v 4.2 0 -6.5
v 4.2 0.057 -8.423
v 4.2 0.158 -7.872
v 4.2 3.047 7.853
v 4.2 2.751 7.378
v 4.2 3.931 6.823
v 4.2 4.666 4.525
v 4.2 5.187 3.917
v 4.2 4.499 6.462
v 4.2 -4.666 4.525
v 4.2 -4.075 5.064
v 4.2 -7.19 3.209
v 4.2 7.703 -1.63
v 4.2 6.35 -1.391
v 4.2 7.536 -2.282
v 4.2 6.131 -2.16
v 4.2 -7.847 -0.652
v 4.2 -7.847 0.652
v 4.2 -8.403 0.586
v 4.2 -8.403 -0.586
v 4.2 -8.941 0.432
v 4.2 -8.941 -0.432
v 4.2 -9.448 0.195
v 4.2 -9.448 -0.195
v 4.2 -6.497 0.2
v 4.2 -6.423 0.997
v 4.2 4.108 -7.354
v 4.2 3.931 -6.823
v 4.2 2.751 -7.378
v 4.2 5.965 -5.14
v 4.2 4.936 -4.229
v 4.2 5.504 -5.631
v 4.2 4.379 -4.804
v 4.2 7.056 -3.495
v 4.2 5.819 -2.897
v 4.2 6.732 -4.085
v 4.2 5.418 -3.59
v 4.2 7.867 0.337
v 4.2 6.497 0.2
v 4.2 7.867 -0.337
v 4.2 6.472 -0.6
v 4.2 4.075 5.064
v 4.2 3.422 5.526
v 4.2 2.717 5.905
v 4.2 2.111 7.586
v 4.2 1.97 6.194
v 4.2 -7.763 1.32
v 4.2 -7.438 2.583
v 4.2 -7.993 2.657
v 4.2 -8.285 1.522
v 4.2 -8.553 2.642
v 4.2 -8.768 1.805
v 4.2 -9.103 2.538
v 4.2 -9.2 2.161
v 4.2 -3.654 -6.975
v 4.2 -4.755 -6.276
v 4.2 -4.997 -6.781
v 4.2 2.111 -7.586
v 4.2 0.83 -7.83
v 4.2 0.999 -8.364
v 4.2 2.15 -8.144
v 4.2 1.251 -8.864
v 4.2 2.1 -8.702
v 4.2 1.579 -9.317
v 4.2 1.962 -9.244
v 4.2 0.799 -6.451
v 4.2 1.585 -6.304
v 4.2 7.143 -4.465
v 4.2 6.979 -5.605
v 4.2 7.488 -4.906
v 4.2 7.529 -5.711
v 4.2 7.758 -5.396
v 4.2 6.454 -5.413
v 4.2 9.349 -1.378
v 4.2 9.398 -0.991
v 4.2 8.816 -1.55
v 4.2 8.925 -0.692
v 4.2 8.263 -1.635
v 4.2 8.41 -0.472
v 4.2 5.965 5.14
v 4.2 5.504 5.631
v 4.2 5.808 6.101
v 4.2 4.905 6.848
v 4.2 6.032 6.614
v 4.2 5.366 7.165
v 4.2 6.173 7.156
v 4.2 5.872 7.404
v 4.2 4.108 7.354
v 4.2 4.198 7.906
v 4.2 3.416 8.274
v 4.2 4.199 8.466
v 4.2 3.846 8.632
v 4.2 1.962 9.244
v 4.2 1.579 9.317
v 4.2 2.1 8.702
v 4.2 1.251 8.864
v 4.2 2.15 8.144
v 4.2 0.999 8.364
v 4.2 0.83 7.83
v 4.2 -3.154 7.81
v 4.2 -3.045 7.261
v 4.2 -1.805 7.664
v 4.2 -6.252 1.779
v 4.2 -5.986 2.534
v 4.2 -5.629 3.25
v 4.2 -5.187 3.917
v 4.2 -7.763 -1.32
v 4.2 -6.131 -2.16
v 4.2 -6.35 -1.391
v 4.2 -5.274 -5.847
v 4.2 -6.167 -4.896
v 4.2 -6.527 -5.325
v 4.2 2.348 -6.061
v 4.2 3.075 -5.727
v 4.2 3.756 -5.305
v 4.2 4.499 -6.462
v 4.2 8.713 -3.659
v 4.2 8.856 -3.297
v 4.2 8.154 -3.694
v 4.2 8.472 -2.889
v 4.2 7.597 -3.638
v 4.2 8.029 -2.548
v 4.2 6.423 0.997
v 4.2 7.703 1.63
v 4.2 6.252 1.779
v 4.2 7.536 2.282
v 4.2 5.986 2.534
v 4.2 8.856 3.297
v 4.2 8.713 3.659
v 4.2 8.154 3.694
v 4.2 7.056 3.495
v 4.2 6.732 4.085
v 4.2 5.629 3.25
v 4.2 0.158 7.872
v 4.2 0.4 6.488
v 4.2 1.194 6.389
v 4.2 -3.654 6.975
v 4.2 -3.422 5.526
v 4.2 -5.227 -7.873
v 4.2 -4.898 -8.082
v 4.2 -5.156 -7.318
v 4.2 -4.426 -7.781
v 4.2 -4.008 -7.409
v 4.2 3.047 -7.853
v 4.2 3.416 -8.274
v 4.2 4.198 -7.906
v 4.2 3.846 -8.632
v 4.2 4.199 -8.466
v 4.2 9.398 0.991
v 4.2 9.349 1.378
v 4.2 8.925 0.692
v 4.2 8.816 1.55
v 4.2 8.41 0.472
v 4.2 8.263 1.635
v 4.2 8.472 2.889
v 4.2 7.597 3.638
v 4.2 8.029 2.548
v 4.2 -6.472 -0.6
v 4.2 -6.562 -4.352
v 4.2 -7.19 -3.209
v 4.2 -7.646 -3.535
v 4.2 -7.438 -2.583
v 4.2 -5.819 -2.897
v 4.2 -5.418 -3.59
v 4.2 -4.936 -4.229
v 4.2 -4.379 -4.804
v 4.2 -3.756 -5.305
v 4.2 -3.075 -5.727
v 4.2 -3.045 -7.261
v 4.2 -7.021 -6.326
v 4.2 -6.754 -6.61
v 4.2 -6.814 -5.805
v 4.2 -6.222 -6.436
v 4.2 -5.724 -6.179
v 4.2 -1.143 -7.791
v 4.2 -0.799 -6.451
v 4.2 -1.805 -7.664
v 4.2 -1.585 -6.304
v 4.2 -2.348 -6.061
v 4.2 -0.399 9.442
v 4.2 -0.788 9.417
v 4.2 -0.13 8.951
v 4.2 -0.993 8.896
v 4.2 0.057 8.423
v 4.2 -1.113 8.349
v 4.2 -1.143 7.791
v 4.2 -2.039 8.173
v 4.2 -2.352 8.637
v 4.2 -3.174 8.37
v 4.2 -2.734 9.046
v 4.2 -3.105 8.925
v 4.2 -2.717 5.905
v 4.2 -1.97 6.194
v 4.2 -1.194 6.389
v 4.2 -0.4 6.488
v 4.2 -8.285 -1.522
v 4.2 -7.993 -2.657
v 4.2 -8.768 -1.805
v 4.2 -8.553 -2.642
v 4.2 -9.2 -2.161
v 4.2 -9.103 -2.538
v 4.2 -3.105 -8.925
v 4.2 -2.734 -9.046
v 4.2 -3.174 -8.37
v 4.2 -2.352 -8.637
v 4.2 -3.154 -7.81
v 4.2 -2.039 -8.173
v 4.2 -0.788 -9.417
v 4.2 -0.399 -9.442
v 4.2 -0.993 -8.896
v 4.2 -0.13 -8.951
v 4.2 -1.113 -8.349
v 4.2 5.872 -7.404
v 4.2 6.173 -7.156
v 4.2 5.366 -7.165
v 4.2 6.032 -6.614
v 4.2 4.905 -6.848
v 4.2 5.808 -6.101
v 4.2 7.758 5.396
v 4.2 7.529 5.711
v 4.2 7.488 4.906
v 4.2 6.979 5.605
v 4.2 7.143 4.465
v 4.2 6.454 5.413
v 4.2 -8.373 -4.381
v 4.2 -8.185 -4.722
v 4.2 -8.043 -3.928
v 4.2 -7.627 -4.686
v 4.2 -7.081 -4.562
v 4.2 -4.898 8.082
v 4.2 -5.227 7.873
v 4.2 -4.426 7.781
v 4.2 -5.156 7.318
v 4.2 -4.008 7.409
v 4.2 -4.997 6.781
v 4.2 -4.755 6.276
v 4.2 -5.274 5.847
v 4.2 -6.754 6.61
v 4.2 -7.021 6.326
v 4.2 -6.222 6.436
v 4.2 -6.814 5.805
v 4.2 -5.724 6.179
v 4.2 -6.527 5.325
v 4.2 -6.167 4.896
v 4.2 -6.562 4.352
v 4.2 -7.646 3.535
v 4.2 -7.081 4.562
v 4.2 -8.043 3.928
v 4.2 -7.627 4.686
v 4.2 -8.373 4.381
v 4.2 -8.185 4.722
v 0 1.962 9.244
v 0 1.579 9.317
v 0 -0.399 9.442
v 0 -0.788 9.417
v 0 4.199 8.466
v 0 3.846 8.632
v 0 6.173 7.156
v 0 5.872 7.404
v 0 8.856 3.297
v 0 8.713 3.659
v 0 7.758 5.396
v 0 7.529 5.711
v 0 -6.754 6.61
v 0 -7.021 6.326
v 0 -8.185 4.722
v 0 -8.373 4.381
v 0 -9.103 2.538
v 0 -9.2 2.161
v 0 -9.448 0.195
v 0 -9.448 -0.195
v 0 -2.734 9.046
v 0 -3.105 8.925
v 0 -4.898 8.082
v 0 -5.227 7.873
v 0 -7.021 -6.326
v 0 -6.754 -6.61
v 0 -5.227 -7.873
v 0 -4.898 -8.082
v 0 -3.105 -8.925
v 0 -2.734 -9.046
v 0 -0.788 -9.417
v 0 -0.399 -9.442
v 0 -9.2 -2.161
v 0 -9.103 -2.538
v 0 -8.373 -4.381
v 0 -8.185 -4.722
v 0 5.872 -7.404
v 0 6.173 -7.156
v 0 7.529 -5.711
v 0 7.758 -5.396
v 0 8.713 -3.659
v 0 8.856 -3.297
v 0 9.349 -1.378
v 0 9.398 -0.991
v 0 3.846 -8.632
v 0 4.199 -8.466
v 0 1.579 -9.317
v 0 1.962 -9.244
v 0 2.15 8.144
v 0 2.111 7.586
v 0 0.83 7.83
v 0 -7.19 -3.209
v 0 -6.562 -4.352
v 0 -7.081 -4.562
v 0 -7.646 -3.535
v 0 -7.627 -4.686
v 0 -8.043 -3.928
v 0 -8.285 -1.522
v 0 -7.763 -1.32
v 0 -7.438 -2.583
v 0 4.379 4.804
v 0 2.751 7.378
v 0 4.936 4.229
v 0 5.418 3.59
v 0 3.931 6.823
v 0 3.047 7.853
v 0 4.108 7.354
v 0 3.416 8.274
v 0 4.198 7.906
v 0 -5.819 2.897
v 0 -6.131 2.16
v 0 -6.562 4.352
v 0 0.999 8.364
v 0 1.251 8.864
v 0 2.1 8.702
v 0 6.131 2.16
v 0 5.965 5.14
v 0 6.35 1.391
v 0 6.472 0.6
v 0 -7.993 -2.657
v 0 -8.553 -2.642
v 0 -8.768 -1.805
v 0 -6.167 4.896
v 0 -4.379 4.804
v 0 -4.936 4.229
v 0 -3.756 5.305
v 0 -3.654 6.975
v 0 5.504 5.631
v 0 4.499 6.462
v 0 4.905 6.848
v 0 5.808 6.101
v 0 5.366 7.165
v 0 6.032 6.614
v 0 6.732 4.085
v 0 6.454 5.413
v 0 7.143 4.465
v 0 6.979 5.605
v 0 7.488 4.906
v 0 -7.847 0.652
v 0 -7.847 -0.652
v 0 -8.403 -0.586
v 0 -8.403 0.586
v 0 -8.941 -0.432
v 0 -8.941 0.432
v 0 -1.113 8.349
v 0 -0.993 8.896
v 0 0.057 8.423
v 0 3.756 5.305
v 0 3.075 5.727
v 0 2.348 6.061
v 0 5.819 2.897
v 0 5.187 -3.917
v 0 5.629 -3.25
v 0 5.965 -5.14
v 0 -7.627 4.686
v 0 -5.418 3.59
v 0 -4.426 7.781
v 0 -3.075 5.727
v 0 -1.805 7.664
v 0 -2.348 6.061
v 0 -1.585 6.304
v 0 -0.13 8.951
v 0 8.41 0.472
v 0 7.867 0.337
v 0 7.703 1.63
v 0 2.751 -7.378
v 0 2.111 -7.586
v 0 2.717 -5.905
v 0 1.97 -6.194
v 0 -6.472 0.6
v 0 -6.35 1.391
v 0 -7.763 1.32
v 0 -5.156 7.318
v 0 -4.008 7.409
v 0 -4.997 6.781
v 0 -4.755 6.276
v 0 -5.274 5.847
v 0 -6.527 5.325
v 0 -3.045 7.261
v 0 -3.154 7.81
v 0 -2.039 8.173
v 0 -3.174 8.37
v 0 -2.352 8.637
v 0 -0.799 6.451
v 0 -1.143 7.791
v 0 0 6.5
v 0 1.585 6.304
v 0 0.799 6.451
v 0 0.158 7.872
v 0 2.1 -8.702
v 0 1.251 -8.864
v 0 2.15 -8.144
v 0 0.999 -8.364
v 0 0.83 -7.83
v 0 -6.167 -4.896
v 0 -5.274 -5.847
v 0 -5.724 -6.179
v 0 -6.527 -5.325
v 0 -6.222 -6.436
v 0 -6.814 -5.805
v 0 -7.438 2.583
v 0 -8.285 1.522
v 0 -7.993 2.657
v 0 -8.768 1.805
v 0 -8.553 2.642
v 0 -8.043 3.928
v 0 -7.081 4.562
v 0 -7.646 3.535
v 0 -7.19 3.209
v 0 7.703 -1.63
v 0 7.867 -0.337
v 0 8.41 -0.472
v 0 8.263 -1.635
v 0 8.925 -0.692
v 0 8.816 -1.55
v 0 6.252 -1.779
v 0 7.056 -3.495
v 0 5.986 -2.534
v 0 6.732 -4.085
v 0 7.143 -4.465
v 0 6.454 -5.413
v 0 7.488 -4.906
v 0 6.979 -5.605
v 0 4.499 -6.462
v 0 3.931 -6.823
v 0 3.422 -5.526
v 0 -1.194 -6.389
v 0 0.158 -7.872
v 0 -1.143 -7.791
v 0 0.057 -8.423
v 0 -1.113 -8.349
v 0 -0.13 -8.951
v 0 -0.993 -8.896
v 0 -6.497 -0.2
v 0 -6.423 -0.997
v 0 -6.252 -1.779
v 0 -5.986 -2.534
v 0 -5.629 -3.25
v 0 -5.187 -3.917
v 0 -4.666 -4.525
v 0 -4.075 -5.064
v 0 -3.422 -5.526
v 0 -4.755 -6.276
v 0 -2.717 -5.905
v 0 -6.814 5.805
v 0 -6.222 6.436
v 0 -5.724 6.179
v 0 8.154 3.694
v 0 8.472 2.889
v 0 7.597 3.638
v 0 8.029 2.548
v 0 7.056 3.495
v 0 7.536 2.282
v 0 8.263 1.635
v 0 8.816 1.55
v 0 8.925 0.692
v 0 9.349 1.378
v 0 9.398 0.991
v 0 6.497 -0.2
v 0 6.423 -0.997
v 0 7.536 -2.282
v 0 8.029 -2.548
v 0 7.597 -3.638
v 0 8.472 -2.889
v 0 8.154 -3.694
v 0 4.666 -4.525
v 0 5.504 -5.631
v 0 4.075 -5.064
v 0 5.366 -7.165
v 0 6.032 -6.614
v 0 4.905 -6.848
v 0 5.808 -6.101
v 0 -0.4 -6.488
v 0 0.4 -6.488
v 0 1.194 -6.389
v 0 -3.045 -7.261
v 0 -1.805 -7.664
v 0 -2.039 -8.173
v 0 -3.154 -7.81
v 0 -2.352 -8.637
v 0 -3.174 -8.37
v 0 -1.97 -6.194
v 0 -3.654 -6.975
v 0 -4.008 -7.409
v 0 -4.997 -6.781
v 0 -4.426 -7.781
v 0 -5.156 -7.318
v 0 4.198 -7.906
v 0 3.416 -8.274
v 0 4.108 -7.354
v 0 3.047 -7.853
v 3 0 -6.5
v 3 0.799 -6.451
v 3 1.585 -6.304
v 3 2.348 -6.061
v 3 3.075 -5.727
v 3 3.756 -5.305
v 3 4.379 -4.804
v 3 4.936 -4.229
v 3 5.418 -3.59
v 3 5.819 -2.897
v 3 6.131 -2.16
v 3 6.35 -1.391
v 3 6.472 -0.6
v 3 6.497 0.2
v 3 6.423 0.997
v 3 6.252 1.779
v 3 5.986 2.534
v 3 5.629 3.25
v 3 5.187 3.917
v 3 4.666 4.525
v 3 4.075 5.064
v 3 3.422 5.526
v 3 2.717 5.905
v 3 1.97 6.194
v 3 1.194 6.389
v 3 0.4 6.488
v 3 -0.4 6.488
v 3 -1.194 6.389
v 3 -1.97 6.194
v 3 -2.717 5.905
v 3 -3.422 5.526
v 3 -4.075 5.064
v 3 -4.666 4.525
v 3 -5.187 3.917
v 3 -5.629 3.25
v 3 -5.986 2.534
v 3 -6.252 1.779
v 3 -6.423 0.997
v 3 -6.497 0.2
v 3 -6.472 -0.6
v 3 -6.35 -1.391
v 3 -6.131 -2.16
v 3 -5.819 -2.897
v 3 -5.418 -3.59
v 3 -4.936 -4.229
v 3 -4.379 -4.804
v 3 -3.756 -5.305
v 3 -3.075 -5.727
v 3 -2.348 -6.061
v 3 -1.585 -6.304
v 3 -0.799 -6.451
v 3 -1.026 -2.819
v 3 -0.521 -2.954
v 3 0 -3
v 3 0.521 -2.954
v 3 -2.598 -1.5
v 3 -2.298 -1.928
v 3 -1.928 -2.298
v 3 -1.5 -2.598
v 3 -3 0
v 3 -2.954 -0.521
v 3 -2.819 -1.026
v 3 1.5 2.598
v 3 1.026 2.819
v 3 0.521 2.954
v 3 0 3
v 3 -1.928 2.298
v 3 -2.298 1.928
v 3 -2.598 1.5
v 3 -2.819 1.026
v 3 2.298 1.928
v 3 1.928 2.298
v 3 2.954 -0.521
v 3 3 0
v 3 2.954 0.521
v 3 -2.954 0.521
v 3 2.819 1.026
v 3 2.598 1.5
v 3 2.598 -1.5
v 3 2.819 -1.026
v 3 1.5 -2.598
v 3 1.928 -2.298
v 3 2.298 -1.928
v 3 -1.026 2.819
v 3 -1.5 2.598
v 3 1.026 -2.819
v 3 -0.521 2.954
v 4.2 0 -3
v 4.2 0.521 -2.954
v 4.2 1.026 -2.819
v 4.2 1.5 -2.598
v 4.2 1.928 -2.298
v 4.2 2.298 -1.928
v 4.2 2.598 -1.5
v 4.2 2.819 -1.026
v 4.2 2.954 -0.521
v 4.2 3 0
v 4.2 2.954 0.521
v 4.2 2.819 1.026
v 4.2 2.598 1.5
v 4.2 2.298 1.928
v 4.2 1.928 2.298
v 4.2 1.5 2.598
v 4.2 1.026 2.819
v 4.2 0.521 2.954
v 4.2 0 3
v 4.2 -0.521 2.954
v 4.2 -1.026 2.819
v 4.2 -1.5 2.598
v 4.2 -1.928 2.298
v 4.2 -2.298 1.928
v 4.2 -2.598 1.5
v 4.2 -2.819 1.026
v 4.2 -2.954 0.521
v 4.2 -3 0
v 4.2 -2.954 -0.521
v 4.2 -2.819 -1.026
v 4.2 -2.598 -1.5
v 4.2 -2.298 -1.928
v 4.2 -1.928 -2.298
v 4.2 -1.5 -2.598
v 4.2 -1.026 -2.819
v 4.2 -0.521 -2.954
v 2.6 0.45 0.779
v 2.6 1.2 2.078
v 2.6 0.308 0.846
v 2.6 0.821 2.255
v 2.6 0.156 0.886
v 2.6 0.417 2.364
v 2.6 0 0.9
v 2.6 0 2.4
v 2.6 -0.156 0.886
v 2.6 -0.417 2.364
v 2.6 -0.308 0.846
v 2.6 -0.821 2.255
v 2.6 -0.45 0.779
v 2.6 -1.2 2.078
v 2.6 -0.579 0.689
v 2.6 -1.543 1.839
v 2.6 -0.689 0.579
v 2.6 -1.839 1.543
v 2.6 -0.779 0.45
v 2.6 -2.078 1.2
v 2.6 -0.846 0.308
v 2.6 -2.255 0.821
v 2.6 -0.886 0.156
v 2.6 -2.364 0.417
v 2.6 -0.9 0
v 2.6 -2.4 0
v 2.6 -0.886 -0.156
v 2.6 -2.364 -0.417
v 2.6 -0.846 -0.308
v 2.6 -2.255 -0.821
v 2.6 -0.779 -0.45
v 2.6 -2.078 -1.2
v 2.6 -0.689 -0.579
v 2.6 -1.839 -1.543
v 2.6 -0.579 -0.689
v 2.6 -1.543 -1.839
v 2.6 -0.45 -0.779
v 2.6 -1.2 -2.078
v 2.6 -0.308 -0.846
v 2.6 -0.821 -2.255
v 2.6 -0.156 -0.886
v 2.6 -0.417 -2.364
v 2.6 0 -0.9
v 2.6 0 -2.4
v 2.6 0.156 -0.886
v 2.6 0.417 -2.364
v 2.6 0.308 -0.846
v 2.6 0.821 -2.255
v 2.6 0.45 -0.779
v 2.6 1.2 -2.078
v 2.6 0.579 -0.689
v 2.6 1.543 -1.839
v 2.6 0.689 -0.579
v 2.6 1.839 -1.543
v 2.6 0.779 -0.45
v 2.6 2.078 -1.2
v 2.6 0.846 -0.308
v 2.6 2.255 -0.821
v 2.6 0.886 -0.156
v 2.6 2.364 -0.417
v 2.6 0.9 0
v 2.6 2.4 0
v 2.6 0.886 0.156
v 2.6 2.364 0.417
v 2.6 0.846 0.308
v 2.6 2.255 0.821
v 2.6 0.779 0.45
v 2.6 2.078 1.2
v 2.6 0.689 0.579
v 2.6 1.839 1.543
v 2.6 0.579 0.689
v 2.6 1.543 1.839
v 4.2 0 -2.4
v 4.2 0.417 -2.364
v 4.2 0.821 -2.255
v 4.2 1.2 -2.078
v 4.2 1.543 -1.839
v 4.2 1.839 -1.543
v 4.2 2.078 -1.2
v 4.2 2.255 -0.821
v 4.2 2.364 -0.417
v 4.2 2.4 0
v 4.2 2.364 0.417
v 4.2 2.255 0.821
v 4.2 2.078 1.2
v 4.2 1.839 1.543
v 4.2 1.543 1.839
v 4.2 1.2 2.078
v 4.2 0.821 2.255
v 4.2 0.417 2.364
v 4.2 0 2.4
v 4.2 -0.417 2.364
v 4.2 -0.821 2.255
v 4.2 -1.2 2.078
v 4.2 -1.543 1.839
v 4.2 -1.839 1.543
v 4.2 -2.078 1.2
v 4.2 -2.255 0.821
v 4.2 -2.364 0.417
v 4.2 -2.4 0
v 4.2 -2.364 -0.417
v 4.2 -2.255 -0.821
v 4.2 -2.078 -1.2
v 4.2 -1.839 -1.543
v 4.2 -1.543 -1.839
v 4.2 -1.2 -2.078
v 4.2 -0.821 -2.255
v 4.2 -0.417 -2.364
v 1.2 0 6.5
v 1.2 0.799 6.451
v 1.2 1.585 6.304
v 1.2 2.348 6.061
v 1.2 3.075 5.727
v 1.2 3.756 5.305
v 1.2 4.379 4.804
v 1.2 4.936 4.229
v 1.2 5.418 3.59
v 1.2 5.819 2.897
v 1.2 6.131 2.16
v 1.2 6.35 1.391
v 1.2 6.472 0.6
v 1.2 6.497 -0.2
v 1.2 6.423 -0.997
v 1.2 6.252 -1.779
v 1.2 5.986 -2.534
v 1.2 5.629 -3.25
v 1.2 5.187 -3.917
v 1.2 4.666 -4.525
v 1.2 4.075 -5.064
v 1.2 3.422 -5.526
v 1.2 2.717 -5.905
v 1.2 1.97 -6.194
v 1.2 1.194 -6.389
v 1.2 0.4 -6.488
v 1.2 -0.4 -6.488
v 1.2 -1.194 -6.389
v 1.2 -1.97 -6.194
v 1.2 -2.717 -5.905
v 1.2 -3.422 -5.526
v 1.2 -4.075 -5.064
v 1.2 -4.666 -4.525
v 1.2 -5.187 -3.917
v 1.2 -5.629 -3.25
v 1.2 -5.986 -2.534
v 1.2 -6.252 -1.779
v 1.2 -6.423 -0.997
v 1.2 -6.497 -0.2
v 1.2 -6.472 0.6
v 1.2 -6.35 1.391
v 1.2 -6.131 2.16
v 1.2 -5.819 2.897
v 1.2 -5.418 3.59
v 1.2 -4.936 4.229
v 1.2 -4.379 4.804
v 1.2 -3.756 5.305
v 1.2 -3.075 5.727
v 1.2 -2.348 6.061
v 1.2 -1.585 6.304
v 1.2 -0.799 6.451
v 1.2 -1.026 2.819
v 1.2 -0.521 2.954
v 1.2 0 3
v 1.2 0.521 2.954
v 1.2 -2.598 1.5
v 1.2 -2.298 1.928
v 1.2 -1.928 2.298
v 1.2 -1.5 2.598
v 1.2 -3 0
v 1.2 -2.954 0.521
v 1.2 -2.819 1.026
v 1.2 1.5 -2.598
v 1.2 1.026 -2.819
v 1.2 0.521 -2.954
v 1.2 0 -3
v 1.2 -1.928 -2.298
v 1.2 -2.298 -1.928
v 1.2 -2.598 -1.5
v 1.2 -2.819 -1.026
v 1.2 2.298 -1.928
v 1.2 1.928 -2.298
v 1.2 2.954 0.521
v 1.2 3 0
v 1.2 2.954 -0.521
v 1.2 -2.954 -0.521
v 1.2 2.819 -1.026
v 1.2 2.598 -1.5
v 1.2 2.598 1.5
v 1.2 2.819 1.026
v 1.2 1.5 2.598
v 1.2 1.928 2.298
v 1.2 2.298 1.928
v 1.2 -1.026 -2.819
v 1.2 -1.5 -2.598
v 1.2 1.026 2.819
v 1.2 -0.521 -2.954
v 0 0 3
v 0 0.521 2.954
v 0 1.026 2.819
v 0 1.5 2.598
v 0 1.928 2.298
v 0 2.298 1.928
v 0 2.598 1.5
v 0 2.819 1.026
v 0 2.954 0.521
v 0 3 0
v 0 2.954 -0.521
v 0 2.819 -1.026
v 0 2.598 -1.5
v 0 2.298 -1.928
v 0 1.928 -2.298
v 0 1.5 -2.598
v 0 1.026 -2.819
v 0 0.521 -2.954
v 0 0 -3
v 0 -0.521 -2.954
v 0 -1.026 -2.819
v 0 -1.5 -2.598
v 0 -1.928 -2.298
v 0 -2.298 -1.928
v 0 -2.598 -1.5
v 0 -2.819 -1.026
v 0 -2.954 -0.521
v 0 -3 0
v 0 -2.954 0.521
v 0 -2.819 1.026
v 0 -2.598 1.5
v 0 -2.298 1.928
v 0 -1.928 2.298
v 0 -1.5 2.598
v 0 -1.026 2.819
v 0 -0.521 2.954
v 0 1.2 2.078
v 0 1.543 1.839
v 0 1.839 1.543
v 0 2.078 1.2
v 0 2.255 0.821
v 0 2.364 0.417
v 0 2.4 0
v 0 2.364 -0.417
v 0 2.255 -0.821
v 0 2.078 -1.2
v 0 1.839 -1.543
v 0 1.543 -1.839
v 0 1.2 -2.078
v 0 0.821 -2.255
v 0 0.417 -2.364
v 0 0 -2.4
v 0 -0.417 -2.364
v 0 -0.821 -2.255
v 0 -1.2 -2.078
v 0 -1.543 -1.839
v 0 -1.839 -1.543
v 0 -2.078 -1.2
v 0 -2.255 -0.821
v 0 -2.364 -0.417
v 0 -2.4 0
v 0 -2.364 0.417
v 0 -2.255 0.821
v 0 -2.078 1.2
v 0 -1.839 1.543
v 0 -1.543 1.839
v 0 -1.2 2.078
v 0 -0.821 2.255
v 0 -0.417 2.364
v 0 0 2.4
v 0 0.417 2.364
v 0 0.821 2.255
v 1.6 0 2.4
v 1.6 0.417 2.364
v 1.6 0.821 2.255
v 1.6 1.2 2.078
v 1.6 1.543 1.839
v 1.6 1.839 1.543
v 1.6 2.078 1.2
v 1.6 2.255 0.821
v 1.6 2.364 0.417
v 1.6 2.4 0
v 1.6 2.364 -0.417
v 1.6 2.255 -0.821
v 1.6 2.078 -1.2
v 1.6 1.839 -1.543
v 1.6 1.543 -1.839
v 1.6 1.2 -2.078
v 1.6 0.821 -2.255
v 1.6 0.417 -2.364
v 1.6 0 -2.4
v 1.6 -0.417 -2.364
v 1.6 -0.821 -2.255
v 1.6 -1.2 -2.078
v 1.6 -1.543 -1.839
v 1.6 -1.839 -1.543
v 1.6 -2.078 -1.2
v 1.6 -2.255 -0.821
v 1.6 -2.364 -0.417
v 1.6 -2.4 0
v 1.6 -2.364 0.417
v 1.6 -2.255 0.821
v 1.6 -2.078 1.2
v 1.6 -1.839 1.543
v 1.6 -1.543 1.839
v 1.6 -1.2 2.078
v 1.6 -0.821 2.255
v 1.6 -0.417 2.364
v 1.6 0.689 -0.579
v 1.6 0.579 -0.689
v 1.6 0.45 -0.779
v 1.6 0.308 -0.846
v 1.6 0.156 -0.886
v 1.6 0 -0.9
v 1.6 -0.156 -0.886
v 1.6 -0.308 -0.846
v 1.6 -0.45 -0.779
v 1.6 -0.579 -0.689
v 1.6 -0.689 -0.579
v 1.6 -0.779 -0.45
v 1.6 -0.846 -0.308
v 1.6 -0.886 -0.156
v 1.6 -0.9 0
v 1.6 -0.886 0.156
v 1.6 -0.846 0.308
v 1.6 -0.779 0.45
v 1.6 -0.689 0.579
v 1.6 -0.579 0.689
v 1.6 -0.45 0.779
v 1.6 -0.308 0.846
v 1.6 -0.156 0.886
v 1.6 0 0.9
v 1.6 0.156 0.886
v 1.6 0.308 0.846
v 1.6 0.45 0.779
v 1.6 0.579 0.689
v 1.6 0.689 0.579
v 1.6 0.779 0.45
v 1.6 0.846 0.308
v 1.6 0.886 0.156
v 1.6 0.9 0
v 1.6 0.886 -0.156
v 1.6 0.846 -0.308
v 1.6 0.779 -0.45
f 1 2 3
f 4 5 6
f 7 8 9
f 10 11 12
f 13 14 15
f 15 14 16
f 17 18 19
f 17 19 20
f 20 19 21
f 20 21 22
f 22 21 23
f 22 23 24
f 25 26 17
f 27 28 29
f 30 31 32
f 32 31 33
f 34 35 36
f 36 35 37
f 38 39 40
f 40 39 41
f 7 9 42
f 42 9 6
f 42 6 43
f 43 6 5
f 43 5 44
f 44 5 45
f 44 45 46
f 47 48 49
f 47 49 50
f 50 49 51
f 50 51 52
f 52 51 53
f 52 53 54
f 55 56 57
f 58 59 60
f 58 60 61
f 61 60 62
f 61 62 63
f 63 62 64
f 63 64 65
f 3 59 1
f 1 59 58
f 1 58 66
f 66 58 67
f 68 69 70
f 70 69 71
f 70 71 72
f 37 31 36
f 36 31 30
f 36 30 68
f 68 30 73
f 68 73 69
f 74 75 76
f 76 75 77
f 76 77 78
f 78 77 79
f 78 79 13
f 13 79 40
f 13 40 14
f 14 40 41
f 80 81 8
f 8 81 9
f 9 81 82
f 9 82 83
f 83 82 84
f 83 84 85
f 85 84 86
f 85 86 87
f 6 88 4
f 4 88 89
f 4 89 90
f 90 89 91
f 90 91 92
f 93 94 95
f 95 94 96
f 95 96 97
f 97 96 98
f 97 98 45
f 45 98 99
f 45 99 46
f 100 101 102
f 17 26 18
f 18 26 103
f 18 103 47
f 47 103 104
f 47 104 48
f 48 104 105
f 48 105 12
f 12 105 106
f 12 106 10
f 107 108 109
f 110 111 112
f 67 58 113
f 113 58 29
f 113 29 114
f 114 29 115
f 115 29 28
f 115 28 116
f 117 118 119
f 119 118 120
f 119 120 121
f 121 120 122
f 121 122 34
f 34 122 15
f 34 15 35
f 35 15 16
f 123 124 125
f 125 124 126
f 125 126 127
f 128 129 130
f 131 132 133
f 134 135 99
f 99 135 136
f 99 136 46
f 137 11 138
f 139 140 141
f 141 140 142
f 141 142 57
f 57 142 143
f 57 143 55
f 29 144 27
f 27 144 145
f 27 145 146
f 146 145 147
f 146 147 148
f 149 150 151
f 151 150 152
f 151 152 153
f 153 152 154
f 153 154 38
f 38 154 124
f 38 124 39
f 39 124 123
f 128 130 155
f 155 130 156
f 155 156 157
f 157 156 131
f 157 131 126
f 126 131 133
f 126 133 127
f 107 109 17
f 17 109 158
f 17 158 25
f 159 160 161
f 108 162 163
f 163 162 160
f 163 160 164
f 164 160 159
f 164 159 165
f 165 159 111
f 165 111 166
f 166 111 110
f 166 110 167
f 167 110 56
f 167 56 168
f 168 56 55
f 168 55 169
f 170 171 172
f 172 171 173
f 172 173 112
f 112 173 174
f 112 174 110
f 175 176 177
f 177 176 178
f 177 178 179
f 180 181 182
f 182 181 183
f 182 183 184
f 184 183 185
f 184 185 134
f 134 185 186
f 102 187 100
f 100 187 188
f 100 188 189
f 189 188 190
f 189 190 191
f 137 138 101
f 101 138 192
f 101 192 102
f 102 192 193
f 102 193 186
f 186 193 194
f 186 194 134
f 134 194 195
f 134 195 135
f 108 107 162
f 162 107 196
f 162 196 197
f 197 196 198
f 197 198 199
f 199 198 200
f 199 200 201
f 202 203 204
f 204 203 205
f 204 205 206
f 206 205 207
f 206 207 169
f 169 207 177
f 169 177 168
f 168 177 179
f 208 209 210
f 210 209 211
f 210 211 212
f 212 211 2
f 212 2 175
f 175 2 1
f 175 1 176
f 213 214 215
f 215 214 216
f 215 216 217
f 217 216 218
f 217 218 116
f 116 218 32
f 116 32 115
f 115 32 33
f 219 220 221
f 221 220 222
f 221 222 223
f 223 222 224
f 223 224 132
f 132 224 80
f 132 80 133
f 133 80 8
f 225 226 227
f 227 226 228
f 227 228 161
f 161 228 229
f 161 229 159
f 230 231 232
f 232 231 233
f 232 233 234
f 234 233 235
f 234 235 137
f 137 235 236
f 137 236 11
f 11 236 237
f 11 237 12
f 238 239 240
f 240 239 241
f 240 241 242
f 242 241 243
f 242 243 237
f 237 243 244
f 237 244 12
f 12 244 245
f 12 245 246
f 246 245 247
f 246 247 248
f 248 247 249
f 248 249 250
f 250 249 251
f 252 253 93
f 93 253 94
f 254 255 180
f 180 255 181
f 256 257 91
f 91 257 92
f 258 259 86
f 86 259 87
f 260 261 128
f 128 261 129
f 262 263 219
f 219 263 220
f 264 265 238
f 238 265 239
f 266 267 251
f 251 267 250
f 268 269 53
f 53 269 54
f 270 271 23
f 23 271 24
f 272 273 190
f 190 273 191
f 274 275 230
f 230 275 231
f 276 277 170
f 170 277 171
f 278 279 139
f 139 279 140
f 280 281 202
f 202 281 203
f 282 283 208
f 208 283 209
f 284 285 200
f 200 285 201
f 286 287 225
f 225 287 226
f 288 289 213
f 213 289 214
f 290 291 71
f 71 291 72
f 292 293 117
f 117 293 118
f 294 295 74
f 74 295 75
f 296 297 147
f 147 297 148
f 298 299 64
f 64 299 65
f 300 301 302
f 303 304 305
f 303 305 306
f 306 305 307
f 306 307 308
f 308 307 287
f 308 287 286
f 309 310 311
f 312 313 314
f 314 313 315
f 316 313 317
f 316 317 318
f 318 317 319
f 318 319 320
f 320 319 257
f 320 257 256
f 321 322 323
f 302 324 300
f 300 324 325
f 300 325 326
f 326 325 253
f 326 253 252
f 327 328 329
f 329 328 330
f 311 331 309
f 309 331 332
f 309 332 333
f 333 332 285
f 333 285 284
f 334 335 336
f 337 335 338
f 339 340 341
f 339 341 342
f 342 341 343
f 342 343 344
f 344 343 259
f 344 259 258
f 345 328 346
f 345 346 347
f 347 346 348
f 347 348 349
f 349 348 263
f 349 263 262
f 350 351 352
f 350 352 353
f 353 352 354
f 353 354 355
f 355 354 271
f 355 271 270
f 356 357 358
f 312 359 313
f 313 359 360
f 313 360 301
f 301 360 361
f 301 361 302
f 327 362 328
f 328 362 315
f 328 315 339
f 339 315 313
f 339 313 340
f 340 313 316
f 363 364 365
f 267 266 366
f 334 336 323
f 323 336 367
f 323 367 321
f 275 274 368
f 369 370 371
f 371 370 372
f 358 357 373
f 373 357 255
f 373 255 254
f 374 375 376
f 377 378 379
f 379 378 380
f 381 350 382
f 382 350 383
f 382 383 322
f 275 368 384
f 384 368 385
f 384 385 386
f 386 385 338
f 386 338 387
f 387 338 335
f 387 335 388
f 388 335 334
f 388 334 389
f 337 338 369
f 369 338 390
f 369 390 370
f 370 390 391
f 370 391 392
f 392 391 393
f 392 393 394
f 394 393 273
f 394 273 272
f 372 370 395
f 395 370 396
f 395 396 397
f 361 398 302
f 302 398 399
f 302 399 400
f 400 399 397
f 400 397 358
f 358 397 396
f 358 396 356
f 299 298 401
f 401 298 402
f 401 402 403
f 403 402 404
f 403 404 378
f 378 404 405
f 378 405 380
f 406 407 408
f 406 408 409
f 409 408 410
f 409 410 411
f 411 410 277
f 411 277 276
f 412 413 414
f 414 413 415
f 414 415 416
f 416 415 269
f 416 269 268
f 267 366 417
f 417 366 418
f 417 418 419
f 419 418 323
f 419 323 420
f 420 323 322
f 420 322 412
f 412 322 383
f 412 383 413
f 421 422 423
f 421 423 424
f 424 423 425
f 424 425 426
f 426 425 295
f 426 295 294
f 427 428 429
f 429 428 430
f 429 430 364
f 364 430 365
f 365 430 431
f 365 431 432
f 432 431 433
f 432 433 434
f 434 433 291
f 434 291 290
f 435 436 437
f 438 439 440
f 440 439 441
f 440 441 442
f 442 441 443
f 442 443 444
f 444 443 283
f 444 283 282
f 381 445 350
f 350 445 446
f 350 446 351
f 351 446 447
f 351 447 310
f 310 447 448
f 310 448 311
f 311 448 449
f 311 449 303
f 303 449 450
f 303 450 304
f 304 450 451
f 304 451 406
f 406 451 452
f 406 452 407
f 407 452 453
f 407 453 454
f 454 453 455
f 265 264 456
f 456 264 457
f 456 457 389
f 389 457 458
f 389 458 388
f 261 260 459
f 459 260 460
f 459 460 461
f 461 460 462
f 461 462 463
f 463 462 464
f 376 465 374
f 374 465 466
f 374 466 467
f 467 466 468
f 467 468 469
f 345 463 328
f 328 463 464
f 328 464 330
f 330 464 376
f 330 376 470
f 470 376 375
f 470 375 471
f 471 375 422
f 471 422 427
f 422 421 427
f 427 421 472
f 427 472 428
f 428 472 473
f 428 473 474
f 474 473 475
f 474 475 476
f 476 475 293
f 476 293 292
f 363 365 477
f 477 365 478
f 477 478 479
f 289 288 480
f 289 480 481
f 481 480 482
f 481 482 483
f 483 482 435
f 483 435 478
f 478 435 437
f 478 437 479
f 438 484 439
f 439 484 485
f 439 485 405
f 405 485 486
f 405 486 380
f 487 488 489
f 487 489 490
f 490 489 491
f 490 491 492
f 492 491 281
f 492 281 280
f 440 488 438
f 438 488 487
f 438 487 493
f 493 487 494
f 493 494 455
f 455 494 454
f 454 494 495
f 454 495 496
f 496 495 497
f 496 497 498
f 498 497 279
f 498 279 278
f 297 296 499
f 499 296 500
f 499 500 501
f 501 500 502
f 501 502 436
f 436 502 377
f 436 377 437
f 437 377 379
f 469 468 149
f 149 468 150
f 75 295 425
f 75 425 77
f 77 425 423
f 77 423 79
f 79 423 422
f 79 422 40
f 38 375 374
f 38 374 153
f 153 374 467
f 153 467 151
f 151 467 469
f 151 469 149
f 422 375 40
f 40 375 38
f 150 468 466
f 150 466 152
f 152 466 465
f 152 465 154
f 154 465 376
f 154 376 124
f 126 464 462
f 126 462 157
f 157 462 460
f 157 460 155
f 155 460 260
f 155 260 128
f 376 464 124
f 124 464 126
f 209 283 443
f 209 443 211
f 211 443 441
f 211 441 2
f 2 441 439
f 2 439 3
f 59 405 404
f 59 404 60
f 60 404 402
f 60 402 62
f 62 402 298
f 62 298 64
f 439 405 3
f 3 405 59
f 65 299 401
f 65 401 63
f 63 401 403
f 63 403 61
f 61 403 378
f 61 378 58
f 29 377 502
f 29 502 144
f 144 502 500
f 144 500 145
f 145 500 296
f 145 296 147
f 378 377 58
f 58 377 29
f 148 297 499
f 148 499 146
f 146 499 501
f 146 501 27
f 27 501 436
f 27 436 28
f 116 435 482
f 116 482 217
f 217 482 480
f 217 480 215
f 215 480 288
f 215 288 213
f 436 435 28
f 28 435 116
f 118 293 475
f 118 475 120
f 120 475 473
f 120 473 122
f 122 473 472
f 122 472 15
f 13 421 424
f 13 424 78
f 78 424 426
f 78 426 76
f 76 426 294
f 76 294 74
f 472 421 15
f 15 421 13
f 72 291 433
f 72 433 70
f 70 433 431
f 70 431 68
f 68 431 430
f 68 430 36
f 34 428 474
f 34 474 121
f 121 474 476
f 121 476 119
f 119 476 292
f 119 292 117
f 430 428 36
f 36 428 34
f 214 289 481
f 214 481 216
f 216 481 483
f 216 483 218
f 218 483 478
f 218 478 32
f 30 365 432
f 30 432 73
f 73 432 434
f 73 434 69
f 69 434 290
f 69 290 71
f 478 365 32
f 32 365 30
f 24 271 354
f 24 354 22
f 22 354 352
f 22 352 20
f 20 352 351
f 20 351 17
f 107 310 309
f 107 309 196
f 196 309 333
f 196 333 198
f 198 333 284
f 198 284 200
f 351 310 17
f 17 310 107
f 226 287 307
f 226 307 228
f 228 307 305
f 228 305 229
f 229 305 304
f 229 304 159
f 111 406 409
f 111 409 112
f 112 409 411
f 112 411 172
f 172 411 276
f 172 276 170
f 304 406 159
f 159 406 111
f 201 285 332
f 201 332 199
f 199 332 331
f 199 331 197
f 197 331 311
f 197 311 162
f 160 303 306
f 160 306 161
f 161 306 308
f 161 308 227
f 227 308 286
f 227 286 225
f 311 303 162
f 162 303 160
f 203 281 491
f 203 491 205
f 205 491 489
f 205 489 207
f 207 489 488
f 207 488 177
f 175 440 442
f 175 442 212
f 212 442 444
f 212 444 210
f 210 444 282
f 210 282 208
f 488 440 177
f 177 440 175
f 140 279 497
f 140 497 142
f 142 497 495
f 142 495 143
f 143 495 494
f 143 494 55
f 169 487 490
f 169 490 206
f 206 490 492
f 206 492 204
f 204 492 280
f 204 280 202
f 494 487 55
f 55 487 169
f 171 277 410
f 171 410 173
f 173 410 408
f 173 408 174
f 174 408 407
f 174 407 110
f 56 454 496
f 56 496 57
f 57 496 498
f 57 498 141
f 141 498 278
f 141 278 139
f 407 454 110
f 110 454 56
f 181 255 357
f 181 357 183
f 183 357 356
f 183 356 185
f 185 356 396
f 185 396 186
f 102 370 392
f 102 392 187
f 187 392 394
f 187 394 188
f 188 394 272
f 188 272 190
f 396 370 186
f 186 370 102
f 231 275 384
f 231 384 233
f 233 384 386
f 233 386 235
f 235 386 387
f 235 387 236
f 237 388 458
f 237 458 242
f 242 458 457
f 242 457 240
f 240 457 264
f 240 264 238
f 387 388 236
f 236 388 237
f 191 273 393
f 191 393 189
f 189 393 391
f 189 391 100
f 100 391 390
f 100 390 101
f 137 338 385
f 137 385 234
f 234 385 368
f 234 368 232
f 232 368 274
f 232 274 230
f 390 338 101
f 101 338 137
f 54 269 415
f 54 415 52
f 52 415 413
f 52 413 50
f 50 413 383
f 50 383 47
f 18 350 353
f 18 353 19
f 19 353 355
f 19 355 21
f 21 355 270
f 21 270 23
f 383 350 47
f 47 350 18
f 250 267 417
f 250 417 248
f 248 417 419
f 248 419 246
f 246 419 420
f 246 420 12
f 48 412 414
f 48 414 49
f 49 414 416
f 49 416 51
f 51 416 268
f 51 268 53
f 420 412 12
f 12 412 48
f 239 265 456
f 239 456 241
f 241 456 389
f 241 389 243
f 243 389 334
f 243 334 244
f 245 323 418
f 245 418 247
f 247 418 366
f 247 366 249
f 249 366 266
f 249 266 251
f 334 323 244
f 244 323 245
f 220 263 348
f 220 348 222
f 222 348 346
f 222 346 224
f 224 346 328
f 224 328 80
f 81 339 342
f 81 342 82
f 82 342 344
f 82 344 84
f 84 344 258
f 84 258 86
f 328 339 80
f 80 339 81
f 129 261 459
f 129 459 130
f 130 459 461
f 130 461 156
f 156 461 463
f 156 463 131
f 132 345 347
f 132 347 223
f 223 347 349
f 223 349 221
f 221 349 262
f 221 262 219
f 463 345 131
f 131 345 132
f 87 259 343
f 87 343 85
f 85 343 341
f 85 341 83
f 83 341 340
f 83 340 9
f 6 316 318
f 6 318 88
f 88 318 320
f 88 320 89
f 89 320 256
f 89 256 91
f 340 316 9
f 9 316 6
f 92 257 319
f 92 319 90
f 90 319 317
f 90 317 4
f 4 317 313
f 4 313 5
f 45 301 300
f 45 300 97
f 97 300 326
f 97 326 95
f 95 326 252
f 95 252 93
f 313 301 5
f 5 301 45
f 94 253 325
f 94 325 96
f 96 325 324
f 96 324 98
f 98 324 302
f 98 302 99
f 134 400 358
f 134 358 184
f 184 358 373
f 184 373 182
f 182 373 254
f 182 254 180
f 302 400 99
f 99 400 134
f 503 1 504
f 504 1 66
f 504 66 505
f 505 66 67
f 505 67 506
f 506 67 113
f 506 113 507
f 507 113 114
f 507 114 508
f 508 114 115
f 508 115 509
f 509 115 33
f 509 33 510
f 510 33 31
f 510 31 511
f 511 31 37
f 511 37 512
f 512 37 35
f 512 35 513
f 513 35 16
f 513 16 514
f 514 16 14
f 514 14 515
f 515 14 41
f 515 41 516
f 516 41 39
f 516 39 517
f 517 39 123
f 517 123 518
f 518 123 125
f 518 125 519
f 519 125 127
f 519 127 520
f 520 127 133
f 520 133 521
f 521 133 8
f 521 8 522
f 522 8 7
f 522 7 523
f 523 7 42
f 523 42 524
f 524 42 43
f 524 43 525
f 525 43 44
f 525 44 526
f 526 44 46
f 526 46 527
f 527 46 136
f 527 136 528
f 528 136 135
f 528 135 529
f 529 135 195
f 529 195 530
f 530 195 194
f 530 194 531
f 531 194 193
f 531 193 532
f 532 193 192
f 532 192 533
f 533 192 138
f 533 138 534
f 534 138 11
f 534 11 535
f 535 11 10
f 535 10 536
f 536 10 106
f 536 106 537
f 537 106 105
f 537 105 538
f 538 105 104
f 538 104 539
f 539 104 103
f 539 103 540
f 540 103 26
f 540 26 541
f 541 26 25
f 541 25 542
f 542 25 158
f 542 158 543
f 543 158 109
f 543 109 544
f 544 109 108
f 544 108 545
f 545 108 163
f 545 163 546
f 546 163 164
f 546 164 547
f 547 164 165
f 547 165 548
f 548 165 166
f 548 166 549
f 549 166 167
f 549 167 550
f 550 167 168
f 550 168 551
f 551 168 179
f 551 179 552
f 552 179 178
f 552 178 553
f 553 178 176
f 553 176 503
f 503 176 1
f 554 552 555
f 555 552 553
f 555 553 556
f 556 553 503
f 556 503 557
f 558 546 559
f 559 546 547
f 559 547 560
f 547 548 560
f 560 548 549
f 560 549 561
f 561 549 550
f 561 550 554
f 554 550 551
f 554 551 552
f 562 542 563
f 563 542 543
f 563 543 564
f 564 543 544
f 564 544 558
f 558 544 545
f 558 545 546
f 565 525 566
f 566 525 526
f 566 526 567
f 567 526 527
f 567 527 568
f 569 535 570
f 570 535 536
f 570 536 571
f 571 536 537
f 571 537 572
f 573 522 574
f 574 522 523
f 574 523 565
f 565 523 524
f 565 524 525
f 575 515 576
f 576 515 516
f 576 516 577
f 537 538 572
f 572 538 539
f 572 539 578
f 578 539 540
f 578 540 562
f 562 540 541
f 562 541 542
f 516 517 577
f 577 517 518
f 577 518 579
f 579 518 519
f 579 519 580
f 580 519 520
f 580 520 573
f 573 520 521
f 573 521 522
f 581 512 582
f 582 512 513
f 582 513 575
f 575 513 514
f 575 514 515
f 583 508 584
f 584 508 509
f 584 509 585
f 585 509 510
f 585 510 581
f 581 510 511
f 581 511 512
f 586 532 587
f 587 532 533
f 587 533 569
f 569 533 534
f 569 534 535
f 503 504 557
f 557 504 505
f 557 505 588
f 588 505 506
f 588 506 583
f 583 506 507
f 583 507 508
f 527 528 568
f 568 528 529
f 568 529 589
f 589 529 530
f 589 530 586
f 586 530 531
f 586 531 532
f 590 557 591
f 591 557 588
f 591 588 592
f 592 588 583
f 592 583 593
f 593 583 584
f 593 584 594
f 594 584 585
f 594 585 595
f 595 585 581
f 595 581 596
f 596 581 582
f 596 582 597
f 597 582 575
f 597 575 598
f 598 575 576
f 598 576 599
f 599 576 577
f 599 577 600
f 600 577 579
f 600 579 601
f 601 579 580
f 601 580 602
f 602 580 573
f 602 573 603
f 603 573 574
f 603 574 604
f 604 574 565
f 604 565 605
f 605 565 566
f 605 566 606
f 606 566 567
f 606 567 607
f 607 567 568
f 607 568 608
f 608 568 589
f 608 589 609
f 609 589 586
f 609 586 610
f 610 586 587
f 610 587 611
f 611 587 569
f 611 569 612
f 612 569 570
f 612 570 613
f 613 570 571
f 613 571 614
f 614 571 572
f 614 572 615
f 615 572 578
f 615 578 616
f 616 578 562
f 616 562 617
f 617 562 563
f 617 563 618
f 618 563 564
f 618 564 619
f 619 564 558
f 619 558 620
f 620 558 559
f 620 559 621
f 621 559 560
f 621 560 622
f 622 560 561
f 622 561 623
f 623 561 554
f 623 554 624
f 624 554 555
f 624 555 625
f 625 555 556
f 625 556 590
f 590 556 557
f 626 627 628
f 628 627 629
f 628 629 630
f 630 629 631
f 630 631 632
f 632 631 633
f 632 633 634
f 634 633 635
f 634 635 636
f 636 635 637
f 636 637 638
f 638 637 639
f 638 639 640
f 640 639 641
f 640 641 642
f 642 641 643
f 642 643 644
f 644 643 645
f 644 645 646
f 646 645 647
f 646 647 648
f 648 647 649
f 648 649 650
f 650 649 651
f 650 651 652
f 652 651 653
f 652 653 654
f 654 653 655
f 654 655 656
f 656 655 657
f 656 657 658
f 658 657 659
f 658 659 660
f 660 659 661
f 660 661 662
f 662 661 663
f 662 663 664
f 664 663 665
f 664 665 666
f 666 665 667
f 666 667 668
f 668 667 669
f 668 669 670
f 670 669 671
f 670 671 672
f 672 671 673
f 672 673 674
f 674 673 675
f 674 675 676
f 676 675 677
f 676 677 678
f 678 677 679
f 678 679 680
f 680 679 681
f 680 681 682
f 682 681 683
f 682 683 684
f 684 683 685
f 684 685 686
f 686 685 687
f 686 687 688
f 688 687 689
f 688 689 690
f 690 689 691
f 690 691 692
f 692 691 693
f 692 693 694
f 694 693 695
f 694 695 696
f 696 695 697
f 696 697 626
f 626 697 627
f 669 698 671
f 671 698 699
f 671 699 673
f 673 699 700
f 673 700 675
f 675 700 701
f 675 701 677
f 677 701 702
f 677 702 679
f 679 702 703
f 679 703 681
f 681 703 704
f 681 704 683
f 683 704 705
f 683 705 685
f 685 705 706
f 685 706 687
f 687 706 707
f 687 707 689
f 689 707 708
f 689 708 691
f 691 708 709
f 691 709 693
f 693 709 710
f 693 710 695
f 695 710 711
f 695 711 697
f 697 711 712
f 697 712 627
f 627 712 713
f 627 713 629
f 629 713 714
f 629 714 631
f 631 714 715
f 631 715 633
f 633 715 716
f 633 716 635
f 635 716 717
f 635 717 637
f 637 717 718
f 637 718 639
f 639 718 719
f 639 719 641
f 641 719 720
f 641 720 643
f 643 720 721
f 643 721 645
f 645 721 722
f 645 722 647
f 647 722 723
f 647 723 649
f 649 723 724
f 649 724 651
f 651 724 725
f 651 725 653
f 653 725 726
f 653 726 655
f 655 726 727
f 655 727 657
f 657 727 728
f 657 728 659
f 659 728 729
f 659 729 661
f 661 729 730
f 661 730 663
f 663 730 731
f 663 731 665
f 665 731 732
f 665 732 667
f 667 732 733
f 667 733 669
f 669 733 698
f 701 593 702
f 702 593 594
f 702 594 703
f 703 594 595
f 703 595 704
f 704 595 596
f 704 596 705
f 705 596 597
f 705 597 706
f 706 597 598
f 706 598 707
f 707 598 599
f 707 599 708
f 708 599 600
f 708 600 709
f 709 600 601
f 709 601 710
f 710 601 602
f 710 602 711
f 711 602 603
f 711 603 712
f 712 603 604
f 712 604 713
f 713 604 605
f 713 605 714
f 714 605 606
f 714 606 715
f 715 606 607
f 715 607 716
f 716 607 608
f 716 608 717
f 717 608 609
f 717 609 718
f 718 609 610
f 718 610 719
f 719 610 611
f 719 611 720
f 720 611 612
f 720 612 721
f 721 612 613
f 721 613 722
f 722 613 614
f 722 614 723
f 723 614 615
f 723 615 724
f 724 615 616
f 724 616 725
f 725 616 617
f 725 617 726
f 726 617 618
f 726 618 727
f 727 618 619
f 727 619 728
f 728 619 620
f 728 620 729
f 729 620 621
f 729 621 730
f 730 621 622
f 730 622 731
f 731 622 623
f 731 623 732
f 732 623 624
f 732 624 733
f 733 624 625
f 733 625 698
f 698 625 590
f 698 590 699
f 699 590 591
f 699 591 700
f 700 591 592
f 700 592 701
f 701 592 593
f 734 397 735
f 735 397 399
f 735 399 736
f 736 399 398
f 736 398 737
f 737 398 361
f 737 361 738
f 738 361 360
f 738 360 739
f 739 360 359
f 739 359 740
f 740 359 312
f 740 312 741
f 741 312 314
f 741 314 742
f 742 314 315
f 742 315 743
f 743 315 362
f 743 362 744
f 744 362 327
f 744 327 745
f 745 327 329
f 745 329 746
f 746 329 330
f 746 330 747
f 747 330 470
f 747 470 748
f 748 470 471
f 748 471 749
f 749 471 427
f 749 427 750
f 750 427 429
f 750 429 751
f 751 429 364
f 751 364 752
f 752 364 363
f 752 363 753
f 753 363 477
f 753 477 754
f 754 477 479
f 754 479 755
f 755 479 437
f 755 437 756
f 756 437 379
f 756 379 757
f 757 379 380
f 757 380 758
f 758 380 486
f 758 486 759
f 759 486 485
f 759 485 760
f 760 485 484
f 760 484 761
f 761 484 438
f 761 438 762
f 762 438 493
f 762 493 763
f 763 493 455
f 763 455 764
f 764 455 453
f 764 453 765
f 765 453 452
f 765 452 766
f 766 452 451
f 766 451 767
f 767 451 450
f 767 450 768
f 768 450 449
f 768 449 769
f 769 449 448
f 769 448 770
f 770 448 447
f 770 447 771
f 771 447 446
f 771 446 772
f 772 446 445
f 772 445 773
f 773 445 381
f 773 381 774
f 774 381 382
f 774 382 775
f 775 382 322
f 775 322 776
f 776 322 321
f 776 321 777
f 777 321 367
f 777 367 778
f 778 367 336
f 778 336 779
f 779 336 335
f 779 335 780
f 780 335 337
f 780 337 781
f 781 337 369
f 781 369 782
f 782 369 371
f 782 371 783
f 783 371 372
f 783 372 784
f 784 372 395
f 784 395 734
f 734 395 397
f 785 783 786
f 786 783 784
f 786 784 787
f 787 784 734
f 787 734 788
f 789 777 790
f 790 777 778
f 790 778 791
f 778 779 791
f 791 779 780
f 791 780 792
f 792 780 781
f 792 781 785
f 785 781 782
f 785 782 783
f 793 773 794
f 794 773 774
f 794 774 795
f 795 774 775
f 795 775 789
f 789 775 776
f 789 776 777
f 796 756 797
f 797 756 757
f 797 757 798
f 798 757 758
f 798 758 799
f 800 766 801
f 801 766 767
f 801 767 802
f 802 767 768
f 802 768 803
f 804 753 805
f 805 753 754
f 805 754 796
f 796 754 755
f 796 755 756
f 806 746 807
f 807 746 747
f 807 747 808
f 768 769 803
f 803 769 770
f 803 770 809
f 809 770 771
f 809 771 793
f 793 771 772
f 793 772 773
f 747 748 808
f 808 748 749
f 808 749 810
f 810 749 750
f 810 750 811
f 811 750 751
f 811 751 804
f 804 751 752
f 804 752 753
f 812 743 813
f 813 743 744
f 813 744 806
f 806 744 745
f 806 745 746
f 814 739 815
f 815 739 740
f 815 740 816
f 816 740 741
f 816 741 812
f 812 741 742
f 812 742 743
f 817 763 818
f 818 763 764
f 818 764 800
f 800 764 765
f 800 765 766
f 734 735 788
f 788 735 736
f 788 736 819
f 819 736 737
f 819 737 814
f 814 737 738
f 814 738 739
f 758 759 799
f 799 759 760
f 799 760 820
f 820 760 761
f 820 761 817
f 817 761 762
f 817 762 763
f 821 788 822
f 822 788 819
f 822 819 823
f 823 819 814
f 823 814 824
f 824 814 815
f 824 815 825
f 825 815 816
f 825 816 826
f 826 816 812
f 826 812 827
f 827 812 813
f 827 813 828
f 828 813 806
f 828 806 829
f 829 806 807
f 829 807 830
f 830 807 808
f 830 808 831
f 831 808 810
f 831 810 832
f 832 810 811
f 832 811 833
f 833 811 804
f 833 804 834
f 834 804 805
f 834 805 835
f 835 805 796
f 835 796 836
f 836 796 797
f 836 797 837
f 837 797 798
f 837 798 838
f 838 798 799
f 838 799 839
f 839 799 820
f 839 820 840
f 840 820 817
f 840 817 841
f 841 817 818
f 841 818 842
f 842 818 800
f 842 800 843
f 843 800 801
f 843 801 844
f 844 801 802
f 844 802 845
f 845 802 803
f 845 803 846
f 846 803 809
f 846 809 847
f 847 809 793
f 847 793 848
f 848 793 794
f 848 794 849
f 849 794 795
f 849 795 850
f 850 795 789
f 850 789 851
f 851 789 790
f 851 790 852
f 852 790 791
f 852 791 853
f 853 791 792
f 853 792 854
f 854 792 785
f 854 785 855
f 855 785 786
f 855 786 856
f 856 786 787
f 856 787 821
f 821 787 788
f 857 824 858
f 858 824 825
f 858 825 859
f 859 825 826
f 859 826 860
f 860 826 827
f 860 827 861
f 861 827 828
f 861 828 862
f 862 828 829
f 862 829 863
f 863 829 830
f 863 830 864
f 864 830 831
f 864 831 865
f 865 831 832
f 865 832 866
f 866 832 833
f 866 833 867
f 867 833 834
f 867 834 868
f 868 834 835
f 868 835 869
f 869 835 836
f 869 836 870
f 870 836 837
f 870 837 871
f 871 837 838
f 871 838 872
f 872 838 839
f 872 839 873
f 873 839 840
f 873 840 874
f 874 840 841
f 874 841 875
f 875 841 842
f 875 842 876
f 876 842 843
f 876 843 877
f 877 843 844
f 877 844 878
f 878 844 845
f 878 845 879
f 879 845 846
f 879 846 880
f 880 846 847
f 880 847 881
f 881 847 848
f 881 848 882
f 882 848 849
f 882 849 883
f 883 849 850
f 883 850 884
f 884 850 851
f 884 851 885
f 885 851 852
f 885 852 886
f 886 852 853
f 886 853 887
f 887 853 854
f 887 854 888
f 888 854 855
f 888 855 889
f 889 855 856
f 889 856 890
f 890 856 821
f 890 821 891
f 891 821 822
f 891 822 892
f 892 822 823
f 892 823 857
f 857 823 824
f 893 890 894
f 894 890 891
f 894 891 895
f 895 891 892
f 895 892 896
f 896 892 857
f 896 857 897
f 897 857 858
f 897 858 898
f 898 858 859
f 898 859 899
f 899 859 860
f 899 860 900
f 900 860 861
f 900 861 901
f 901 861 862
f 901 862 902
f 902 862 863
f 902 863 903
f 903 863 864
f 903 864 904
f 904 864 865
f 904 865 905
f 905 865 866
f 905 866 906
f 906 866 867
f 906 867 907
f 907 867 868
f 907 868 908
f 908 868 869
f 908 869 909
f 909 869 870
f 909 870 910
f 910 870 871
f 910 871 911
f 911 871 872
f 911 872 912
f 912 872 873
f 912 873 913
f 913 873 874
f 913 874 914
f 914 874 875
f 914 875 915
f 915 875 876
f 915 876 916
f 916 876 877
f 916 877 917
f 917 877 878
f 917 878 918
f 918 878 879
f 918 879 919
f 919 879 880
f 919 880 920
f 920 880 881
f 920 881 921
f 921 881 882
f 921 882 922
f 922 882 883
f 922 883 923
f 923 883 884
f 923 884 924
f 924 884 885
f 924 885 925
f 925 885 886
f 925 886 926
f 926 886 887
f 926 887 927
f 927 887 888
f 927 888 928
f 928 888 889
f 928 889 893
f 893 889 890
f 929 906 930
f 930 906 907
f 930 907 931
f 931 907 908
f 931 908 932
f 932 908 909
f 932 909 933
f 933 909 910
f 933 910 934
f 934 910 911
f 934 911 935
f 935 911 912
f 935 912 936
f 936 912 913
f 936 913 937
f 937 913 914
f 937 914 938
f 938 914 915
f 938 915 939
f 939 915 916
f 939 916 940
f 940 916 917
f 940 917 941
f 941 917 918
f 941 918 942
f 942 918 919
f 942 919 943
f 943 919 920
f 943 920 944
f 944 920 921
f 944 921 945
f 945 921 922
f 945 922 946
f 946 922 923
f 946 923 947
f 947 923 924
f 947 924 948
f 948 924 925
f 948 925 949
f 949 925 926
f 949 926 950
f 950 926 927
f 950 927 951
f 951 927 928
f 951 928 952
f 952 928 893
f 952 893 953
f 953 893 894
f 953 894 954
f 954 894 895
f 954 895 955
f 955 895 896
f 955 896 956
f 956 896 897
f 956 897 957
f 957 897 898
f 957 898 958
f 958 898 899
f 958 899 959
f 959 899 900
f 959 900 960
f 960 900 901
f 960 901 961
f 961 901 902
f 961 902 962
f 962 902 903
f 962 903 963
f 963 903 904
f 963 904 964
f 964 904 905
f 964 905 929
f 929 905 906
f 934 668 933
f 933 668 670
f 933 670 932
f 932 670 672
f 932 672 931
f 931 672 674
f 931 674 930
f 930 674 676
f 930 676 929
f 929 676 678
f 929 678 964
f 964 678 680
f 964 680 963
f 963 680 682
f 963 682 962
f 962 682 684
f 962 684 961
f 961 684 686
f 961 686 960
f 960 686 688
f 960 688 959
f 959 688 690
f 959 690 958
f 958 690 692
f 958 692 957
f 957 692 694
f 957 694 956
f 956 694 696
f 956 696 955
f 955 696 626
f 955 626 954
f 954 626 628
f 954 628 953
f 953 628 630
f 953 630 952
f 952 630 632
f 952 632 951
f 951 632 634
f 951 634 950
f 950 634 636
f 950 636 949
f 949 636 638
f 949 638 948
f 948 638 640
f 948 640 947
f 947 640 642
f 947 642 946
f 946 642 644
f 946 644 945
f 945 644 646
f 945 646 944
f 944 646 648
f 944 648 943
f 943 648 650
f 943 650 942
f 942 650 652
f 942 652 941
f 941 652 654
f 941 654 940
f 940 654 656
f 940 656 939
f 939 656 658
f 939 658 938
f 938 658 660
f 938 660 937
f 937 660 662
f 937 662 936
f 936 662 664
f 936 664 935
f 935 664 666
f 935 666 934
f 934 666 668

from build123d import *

# Parameters (mm, degrees)
BASPROSKE_W        = 4.2
BASPROSKE_H        = 9.45
TOOTHCUT_DEPTH     = 15.008747267
TEETHCUTS_COUNT    = 25
TEETHCUTS_ANGLE    = 345.6
SKETCH7_R          = 2.4
CUT_EXTRUDE2_DEPTH = 1.6
SKETCH13_R         = 6.5
SKETCH13_R_2       = 3
CUT_EXTRUDE3_DEPTH = 1.2
CUT_EXTRUDE4_START = -1.2
SKETCH15_R         = 6.5
SKETCH15_R_2       = 3
CUT_EXTRUDE4_DEPTH = 1.2
CUT_EXTRUDE5_START = -1.6
SKETCH17_R         = 2.4
CUT_EXTRUDE5_DEPTH = 1.6
SKETCH18_R         = 0.9
CUT_EXTRUDE6_DEPTH = 1.6


with BuildPart() as part:
    # BasProSke → Base-Revolve (revolve)
    with BuildSketch(Plane(origin=(0, 0, 0), x_dir=(1, 0, 0), z_dir=(0, 1, 0)), mode=Mode.PRIVATE) as base_revolve_sk:
        with Locations((2.1, 4.725)):
            Rectangle(BASPROSKE_W, BASPROSKE_H)
    revolve(base_revolve_sk.sketch.rotate(Axis((-10, 0, 0), (1, 0, 0)), 180), axis=Axis((-10, 0, 0), (1, 0, 0)))

    # TooCutSke → ToothCut (cut, through all)
    with BuildSketch(Plane(origin=(0, 0, 0), x_dir=(0, 0, -1), z_dir=(1, 0, 0))):
        with BuildLine():
            ThreePointArc((0.336642775, 7.866800343), (0, 7.874), (-0.336642775, 7.866800343))
            ThreePointArc((-0.336642775, 7.866800343), (-0.577188207, 8.685445672), (-1.008672355, 9.421559597))
            ThreePointArc((-1.008672355, 9.421559597), (0, 9.4754), (1.008672355, 9.421559597))
            ThreePointArc((1.008672355, 9.421559597), (0.577188207, 8.685445672), (0.336642775, 7.866800343))
        make_face()
    toothcut = extrude(amount=TOOTHCUT_DEPTH, mode=Mode.SUBTRACT)

    # TeethCuts: ToothCut ×25 about axis
    teethcuts_axis = Axis((-10, 0, 0), (1, 0, 0))
    for i in range(1, TEETHCUTS_COUNT):
        add(toothcut.rotate(teethcuts_axis, i * TEETHCUTS_ANGLE / (TEETHCUTS_COUNT - 1)), mode=Mode.SUBTRACT)

    # Sketch7 → Cut-Extrude2 (cut)
    with BuildSketch(Plane(origin=(4.2, 0, 0), x_dir=(0, 0, -1), z_dir=(1, 0, 0))):
        Circle(SKETCH7_R)
    extrude(amount=-CUT_EXTRUDE2_DEPTH, mode=Mode.SUBTRACT)

    # Sketch13 → Cut-Extrude3 (cut)
    with BuildSketch(Plane(origin=(4.2, 0, 0), x_dir=(0, 0, -1), z_dir=(1, 0, 0))):
        Circle(SKETCH13_R)
        Circle(SKETCH13_R_2, mode=Mode.SUBTRACT)
    extrude(amount=-CUT_EXTRUDE3_DEPTH, mode=Mode.SUBTRACT)

    # Sketch15 → Cut-Extrude4 (cut)
    with BuildSketch(Plane.ZY.offset(CUT_EXTRUDE4_START)):
        with Locations(Location((0, 0, 0), (0, 0, 180))):
            Circle(SKETCH15_R)
        with Locations(Location((0, 0, 0), (0, 0, 180))):
            Circle(SKETCH15_R_2, mode=Mode.SUBTRACT)
    extrude(amount=CUT_EXTRUDE4_DEPTH, mode=Mode.SUBTRACT)

    # Sketch17 → Cut-Extrude5 (cut)
    with BuildSketch(Plane.ZY.offset(CUT_EXTRUDE5_START)):
        with Locations(Location((0, 0, 0), (0, 0, 180))):
            Circle(SKETCH17_R)
    extrude(amount=CUT_EXTRUDE5_DEPTH, mode=Mode.SUBTRACT)

    # Sketch18 → Cut-Extrude6 (cut)
    with BuildSketch(Plane(origin=(2.6, 0, 0), x_dir=(0, 0, -1), z_dir=(1, 0, 0))):
        Circle(SKETCH18_R)
    extrude(amount=-CUT_EXTRUDE6_DEPTH, mode=Mode.SUBTRACT)


solid = part.part
